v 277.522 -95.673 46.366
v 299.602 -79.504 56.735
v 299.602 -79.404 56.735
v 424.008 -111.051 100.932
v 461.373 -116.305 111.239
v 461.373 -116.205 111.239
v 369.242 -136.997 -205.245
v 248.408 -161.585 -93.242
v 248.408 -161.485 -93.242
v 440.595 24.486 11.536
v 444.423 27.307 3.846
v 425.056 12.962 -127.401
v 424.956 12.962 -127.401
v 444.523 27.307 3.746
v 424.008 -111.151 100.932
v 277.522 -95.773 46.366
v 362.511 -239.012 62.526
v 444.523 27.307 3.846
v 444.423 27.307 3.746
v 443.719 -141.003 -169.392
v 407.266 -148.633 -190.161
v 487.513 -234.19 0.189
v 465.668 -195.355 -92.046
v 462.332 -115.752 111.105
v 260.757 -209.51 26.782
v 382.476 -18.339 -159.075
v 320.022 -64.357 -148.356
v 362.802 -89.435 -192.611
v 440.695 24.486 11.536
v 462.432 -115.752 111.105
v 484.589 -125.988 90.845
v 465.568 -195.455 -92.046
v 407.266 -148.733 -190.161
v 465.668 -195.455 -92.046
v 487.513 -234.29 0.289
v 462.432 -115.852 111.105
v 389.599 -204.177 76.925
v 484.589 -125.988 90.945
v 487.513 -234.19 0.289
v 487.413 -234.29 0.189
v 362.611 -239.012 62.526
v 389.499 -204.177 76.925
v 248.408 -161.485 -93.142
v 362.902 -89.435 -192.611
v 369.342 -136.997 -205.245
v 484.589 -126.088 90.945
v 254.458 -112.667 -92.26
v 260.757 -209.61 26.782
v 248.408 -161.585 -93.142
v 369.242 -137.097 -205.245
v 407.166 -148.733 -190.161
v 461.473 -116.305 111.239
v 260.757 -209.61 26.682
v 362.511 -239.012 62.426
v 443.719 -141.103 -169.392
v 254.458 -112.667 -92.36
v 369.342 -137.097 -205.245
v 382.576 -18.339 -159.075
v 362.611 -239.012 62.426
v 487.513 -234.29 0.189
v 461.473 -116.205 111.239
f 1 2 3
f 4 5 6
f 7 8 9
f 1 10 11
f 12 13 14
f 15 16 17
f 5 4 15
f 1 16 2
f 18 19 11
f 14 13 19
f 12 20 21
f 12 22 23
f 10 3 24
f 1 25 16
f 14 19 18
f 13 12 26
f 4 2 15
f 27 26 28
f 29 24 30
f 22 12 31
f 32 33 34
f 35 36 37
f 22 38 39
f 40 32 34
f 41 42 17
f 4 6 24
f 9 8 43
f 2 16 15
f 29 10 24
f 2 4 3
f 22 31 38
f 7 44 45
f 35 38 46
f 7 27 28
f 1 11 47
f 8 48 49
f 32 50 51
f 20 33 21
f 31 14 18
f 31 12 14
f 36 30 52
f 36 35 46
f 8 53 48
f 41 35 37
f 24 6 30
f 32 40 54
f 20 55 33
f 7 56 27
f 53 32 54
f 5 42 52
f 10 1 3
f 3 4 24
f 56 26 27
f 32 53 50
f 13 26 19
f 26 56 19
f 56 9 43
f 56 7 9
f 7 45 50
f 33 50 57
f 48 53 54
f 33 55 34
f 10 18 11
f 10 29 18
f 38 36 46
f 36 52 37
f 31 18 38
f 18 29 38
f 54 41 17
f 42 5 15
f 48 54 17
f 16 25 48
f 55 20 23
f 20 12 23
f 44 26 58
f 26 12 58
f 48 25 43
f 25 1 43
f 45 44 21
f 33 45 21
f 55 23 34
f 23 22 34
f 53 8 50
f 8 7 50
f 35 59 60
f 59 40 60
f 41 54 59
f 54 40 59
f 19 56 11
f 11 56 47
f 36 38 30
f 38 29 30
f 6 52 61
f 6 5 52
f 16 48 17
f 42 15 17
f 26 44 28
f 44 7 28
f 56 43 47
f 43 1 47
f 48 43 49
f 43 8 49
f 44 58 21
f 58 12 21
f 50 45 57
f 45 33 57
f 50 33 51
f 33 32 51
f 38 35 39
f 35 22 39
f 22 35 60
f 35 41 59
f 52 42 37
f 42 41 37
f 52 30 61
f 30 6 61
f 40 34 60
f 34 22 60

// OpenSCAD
hull(){ translate([440.595181861,24.3859234766,11.4359943316])cube(0.1,0.1,0.1);
translate([444.423269809,27.2066198596,3.74623871615])cube(0.1,0.1,0.1);
translate([462.332058984,-115.851993446,111.004915347])cube(0.1,0.1,0.1);
translate([484.488859764,-126.087811271,90.8453473132])cube(0.1,0.1,0.1);
translate([299.601769912,-79.5039590126,56.6348393107])cube(0.1,0.1,0.1);
translate([362.51079994,-239.011619246,62.4258900641])cube(0.1,0.1,0.1);
translate([487.413249211,-234.29022082,0.18927444795])cube(0.1,0.1,0.1);
translate([260.756754394,-209.60960042,26.6822593337])cube(0.1,0.1,0.1);
translate([277.522285547,-95.7730527546,46.2655268157])cube(0.1,0.1,0.1);
translate([248.40761458,-161.585167809,-93.2416095272])cube(0.1,0.1,0.1);
translate([254.458423364,-112.767477521,-92.360423782])cube(0.1,0.1,0.1);
translate([369.242311967,-137.09707299,-205.244535013])cube(0.1,0.1,0.1);
translate([424.956076135,12.8623718887,-127.401171303])cube(0.1,0.1,0.1);
translate([407.165898618,-148.732718894,-190.161290323])cube(0.1,0.1,0.1);
translate([465.568181818,-195.454545455,-92.0454545455])cube(0.1,0.1,0.1);
translate([443.618556701,-141.103092784,-169.391752577])cube(0.1,0.1,0.1);
translate([320.02210029,-64.4573997866,-148.356195702])cube(0.1,0.1,0.1);
translate([362.801621364,-89.5350500715,-192.610872675])cube(0.1,0.1,0.1);
translate([382.476091476,-18.4386694387,-159.074844075])cube(0.1,0.1,0.1);
translate([461.373198286,-116.305025321,111.139462407])cube(0.1,0.1,0.1);
translate([424.008403361,-111.151260504,100.831932773])cube(0.1,0.1,0.1);
translate([389.498714653,-204.177377892,76.8251928021])cube(0.1,0.1,0.1); }
